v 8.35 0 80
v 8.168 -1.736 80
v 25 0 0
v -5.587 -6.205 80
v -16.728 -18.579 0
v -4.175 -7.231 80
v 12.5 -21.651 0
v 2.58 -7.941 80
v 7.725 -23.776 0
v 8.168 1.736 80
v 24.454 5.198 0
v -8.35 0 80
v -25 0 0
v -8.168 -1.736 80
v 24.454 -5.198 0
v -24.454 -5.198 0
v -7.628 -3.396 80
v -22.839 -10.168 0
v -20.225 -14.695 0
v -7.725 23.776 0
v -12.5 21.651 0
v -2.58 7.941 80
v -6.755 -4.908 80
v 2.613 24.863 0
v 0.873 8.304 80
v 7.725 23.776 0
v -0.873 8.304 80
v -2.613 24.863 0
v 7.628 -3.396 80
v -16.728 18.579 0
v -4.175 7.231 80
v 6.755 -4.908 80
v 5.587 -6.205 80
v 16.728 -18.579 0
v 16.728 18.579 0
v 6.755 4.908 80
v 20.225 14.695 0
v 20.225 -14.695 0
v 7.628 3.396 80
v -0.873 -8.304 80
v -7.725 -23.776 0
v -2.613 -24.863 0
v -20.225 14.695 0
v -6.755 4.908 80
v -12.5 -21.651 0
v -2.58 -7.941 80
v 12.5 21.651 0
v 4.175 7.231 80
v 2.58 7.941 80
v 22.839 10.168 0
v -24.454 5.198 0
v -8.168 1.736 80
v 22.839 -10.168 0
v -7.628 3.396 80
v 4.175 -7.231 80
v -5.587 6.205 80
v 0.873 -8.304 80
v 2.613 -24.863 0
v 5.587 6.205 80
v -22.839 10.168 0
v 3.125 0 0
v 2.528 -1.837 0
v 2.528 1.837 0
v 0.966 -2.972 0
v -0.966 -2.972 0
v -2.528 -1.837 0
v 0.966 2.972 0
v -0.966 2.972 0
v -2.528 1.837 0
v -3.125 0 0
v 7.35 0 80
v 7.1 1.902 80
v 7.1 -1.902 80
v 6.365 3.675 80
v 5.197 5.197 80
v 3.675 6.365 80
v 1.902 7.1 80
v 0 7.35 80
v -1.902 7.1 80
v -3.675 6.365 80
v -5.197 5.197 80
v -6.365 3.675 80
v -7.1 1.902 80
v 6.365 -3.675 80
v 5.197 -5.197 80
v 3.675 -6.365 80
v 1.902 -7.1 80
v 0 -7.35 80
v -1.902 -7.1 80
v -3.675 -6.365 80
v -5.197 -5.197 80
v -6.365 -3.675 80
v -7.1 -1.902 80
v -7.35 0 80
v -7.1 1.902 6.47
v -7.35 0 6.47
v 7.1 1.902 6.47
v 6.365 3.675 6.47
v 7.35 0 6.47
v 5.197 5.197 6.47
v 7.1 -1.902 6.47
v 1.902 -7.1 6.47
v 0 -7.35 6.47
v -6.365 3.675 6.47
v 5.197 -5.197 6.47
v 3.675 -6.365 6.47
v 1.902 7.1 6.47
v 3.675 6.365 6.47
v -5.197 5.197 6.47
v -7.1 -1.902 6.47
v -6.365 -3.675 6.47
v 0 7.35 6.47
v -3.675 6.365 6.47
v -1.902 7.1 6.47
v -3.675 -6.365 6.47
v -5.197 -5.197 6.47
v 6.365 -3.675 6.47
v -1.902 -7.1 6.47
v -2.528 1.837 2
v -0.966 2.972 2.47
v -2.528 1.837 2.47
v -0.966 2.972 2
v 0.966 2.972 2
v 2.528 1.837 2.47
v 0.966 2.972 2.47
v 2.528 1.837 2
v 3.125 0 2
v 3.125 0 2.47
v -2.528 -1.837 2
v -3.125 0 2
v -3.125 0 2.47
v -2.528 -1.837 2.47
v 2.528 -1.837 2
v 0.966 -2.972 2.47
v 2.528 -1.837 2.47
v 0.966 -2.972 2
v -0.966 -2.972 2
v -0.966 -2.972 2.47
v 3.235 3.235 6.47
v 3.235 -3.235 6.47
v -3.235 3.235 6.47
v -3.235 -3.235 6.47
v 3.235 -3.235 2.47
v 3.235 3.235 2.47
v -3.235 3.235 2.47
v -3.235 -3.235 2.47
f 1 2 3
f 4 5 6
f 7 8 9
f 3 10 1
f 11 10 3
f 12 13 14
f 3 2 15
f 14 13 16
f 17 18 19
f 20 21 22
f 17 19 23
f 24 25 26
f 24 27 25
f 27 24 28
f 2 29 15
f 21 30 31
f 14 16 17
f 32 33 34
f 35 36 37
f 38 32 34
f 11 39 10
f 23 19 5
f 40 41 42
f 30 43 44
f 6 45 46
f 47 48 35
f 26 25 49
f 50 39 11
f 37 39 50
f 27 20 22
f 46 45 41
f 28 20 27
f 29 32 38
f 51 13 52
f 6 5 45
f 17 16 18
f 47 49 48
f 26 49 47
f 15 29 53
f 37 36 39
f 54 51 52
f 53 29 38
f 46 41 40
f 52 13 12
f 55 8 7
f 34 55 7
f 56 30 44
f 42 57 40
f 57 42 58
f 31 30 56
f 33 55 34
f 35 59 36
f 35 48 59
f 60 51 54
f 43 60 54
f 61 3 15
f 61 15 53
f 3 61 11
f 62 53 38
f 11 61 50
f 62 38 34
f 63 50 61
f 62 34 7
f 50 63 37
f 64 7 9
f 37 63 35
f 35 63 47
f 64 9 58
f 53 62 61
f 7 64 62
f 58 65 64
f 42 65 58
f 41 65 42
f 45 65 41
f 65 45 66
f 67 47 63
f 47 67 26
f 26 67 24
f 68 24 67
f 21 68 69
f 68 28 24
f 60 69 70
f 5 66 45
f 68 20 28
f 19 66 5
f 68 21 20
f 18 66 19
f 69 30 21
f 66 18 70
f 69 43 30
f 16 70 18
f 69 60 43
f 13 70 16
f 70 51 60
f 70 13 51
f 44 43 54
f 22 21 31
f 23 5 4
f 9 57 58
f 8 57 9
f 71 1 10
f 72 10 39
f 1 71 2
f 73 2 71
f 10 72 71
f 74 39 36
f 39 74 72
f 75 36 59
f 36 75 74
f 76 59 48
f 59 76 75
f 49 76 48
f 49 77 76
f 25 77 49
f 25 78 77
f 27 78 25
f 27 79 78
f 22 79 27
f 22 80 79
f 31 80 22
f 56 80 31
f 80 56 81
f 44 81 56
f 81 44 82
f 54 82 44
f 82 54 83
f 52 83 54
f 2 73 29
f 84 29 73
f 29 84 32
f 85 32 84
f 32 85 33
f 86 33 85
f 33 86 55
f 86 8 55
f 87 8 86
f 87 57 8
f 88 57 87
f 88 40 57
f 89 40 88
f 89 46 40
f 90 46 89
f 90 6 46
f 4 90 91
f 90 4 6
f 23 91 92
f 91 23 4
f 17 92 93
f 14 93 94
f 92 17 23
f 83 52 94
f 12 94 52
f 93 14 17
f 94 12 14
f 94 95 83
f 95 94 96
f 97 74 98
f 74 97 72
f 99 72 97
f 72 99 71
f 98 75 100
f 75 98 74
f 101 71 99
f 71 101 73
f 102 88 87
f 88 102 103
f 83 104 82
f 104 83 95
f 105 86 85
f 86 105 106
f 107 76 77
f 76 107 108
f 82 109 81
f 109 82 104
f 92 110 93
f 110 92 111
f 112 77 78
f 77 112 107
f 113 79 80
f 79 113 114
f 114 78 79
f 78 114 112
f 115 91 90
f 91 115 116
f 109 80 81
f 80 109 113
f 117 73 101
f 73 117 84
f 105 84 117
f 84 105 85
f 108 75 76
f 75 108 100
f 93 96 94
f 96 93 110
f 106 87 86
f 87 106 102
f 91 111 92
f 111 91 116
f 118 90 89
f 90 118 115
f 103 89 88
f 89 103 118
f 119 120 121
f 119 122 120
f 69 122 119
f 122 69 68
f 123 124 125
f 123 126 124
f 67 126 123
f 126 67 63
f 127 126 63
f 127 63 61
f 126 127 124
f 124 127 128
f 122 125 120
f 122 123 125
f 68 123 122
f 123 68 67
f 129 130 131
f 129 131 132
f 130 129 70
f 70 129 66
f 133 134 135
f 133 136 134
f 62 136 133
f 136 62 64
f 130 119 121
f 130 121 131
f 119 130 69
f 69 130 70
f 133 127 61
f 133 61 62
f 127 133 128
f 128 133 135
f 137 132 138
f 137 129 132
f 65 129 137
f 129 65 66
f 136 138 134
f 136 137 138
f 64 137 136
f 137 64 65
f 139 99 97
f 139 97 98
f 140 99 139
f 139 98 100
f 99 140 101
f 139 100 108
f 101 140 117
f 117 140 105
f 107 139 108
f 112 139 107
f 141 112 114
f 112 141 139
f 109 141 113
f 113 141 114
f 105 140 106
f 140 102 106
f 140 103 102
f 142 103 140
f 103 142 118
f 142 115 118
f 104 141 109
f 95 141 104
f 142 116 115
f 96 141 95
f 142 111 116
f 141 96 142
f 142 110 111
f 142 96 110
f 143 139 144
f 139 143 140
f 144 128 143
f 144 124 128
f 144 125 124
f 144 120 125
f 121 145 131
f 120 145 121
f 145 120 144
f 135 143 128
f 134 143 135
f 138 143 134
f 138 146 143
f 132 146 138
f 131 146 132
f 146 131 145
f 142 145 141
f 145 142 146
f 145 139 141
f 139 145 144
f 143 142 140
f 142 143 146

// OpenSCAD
//I need to determine the depth of the difference for the square bolt head


//cone attachment to drill as a sanding drum


//Bolt circle head 14.7 
//Square top 6.47 
//Square bottom 6.41 
//Bolt diameter 6.25

// cone

circle_radius = 14.7/2;
bolt_hole_length = 20;
cyl_base = 25;  //radius
cyl_top = circle_radius+1;    //radius


bolt_head_span = 6.47;
cube_height = bolt_head_span ;
bolt_stem_radius =   6.25/2;
bolt_head_depth = 4; 



// formula to determine how deep bolt head should go

cyl_buffer_at_bottom = 4;

//  cube_height - cyl_buffer_at_bottom


translate([0,0,5])
    {
       // circle(r = circle_radius,center = true);
    }

difference()
    {
  cylinder(80,cyl_base,cyl_top,center = false);

            //subtracted cylinder as a hollow
    
        translate([0,0,2])
        {
           cylinder(85,circle_radius,circle_radius,center = false);
        }
        translate([0,0,0])
            {
            cylinder(h = bolt_hole_length,r1 = bolt_stem_radius,r2 = bolt_stem_radius,center = true);
        }
    }

//subtracted cylinder for bolt hole

//cube for holding bolt head

difference()
{
    translate([0,0,1/2*cube_height])
    {
   cube([cyl_base*2-10,20,cube_height],center = true); //difference_cube
        }
     translate([0,0,cube_height*.5])
        {
            translate([0,0,cube_height-bolt_head_depth])
        {    
            color("blue")
            cube([bolt_head_span ,bolt_head_span ,cube_height],center = true);
            }
        }
                    translate([0,0,0])
            {
           cylinder(h = bolt_hole_length,r1 = bolt_stem_radius,r2 = bolt_stem_radius,center = true);
        }
    
}
